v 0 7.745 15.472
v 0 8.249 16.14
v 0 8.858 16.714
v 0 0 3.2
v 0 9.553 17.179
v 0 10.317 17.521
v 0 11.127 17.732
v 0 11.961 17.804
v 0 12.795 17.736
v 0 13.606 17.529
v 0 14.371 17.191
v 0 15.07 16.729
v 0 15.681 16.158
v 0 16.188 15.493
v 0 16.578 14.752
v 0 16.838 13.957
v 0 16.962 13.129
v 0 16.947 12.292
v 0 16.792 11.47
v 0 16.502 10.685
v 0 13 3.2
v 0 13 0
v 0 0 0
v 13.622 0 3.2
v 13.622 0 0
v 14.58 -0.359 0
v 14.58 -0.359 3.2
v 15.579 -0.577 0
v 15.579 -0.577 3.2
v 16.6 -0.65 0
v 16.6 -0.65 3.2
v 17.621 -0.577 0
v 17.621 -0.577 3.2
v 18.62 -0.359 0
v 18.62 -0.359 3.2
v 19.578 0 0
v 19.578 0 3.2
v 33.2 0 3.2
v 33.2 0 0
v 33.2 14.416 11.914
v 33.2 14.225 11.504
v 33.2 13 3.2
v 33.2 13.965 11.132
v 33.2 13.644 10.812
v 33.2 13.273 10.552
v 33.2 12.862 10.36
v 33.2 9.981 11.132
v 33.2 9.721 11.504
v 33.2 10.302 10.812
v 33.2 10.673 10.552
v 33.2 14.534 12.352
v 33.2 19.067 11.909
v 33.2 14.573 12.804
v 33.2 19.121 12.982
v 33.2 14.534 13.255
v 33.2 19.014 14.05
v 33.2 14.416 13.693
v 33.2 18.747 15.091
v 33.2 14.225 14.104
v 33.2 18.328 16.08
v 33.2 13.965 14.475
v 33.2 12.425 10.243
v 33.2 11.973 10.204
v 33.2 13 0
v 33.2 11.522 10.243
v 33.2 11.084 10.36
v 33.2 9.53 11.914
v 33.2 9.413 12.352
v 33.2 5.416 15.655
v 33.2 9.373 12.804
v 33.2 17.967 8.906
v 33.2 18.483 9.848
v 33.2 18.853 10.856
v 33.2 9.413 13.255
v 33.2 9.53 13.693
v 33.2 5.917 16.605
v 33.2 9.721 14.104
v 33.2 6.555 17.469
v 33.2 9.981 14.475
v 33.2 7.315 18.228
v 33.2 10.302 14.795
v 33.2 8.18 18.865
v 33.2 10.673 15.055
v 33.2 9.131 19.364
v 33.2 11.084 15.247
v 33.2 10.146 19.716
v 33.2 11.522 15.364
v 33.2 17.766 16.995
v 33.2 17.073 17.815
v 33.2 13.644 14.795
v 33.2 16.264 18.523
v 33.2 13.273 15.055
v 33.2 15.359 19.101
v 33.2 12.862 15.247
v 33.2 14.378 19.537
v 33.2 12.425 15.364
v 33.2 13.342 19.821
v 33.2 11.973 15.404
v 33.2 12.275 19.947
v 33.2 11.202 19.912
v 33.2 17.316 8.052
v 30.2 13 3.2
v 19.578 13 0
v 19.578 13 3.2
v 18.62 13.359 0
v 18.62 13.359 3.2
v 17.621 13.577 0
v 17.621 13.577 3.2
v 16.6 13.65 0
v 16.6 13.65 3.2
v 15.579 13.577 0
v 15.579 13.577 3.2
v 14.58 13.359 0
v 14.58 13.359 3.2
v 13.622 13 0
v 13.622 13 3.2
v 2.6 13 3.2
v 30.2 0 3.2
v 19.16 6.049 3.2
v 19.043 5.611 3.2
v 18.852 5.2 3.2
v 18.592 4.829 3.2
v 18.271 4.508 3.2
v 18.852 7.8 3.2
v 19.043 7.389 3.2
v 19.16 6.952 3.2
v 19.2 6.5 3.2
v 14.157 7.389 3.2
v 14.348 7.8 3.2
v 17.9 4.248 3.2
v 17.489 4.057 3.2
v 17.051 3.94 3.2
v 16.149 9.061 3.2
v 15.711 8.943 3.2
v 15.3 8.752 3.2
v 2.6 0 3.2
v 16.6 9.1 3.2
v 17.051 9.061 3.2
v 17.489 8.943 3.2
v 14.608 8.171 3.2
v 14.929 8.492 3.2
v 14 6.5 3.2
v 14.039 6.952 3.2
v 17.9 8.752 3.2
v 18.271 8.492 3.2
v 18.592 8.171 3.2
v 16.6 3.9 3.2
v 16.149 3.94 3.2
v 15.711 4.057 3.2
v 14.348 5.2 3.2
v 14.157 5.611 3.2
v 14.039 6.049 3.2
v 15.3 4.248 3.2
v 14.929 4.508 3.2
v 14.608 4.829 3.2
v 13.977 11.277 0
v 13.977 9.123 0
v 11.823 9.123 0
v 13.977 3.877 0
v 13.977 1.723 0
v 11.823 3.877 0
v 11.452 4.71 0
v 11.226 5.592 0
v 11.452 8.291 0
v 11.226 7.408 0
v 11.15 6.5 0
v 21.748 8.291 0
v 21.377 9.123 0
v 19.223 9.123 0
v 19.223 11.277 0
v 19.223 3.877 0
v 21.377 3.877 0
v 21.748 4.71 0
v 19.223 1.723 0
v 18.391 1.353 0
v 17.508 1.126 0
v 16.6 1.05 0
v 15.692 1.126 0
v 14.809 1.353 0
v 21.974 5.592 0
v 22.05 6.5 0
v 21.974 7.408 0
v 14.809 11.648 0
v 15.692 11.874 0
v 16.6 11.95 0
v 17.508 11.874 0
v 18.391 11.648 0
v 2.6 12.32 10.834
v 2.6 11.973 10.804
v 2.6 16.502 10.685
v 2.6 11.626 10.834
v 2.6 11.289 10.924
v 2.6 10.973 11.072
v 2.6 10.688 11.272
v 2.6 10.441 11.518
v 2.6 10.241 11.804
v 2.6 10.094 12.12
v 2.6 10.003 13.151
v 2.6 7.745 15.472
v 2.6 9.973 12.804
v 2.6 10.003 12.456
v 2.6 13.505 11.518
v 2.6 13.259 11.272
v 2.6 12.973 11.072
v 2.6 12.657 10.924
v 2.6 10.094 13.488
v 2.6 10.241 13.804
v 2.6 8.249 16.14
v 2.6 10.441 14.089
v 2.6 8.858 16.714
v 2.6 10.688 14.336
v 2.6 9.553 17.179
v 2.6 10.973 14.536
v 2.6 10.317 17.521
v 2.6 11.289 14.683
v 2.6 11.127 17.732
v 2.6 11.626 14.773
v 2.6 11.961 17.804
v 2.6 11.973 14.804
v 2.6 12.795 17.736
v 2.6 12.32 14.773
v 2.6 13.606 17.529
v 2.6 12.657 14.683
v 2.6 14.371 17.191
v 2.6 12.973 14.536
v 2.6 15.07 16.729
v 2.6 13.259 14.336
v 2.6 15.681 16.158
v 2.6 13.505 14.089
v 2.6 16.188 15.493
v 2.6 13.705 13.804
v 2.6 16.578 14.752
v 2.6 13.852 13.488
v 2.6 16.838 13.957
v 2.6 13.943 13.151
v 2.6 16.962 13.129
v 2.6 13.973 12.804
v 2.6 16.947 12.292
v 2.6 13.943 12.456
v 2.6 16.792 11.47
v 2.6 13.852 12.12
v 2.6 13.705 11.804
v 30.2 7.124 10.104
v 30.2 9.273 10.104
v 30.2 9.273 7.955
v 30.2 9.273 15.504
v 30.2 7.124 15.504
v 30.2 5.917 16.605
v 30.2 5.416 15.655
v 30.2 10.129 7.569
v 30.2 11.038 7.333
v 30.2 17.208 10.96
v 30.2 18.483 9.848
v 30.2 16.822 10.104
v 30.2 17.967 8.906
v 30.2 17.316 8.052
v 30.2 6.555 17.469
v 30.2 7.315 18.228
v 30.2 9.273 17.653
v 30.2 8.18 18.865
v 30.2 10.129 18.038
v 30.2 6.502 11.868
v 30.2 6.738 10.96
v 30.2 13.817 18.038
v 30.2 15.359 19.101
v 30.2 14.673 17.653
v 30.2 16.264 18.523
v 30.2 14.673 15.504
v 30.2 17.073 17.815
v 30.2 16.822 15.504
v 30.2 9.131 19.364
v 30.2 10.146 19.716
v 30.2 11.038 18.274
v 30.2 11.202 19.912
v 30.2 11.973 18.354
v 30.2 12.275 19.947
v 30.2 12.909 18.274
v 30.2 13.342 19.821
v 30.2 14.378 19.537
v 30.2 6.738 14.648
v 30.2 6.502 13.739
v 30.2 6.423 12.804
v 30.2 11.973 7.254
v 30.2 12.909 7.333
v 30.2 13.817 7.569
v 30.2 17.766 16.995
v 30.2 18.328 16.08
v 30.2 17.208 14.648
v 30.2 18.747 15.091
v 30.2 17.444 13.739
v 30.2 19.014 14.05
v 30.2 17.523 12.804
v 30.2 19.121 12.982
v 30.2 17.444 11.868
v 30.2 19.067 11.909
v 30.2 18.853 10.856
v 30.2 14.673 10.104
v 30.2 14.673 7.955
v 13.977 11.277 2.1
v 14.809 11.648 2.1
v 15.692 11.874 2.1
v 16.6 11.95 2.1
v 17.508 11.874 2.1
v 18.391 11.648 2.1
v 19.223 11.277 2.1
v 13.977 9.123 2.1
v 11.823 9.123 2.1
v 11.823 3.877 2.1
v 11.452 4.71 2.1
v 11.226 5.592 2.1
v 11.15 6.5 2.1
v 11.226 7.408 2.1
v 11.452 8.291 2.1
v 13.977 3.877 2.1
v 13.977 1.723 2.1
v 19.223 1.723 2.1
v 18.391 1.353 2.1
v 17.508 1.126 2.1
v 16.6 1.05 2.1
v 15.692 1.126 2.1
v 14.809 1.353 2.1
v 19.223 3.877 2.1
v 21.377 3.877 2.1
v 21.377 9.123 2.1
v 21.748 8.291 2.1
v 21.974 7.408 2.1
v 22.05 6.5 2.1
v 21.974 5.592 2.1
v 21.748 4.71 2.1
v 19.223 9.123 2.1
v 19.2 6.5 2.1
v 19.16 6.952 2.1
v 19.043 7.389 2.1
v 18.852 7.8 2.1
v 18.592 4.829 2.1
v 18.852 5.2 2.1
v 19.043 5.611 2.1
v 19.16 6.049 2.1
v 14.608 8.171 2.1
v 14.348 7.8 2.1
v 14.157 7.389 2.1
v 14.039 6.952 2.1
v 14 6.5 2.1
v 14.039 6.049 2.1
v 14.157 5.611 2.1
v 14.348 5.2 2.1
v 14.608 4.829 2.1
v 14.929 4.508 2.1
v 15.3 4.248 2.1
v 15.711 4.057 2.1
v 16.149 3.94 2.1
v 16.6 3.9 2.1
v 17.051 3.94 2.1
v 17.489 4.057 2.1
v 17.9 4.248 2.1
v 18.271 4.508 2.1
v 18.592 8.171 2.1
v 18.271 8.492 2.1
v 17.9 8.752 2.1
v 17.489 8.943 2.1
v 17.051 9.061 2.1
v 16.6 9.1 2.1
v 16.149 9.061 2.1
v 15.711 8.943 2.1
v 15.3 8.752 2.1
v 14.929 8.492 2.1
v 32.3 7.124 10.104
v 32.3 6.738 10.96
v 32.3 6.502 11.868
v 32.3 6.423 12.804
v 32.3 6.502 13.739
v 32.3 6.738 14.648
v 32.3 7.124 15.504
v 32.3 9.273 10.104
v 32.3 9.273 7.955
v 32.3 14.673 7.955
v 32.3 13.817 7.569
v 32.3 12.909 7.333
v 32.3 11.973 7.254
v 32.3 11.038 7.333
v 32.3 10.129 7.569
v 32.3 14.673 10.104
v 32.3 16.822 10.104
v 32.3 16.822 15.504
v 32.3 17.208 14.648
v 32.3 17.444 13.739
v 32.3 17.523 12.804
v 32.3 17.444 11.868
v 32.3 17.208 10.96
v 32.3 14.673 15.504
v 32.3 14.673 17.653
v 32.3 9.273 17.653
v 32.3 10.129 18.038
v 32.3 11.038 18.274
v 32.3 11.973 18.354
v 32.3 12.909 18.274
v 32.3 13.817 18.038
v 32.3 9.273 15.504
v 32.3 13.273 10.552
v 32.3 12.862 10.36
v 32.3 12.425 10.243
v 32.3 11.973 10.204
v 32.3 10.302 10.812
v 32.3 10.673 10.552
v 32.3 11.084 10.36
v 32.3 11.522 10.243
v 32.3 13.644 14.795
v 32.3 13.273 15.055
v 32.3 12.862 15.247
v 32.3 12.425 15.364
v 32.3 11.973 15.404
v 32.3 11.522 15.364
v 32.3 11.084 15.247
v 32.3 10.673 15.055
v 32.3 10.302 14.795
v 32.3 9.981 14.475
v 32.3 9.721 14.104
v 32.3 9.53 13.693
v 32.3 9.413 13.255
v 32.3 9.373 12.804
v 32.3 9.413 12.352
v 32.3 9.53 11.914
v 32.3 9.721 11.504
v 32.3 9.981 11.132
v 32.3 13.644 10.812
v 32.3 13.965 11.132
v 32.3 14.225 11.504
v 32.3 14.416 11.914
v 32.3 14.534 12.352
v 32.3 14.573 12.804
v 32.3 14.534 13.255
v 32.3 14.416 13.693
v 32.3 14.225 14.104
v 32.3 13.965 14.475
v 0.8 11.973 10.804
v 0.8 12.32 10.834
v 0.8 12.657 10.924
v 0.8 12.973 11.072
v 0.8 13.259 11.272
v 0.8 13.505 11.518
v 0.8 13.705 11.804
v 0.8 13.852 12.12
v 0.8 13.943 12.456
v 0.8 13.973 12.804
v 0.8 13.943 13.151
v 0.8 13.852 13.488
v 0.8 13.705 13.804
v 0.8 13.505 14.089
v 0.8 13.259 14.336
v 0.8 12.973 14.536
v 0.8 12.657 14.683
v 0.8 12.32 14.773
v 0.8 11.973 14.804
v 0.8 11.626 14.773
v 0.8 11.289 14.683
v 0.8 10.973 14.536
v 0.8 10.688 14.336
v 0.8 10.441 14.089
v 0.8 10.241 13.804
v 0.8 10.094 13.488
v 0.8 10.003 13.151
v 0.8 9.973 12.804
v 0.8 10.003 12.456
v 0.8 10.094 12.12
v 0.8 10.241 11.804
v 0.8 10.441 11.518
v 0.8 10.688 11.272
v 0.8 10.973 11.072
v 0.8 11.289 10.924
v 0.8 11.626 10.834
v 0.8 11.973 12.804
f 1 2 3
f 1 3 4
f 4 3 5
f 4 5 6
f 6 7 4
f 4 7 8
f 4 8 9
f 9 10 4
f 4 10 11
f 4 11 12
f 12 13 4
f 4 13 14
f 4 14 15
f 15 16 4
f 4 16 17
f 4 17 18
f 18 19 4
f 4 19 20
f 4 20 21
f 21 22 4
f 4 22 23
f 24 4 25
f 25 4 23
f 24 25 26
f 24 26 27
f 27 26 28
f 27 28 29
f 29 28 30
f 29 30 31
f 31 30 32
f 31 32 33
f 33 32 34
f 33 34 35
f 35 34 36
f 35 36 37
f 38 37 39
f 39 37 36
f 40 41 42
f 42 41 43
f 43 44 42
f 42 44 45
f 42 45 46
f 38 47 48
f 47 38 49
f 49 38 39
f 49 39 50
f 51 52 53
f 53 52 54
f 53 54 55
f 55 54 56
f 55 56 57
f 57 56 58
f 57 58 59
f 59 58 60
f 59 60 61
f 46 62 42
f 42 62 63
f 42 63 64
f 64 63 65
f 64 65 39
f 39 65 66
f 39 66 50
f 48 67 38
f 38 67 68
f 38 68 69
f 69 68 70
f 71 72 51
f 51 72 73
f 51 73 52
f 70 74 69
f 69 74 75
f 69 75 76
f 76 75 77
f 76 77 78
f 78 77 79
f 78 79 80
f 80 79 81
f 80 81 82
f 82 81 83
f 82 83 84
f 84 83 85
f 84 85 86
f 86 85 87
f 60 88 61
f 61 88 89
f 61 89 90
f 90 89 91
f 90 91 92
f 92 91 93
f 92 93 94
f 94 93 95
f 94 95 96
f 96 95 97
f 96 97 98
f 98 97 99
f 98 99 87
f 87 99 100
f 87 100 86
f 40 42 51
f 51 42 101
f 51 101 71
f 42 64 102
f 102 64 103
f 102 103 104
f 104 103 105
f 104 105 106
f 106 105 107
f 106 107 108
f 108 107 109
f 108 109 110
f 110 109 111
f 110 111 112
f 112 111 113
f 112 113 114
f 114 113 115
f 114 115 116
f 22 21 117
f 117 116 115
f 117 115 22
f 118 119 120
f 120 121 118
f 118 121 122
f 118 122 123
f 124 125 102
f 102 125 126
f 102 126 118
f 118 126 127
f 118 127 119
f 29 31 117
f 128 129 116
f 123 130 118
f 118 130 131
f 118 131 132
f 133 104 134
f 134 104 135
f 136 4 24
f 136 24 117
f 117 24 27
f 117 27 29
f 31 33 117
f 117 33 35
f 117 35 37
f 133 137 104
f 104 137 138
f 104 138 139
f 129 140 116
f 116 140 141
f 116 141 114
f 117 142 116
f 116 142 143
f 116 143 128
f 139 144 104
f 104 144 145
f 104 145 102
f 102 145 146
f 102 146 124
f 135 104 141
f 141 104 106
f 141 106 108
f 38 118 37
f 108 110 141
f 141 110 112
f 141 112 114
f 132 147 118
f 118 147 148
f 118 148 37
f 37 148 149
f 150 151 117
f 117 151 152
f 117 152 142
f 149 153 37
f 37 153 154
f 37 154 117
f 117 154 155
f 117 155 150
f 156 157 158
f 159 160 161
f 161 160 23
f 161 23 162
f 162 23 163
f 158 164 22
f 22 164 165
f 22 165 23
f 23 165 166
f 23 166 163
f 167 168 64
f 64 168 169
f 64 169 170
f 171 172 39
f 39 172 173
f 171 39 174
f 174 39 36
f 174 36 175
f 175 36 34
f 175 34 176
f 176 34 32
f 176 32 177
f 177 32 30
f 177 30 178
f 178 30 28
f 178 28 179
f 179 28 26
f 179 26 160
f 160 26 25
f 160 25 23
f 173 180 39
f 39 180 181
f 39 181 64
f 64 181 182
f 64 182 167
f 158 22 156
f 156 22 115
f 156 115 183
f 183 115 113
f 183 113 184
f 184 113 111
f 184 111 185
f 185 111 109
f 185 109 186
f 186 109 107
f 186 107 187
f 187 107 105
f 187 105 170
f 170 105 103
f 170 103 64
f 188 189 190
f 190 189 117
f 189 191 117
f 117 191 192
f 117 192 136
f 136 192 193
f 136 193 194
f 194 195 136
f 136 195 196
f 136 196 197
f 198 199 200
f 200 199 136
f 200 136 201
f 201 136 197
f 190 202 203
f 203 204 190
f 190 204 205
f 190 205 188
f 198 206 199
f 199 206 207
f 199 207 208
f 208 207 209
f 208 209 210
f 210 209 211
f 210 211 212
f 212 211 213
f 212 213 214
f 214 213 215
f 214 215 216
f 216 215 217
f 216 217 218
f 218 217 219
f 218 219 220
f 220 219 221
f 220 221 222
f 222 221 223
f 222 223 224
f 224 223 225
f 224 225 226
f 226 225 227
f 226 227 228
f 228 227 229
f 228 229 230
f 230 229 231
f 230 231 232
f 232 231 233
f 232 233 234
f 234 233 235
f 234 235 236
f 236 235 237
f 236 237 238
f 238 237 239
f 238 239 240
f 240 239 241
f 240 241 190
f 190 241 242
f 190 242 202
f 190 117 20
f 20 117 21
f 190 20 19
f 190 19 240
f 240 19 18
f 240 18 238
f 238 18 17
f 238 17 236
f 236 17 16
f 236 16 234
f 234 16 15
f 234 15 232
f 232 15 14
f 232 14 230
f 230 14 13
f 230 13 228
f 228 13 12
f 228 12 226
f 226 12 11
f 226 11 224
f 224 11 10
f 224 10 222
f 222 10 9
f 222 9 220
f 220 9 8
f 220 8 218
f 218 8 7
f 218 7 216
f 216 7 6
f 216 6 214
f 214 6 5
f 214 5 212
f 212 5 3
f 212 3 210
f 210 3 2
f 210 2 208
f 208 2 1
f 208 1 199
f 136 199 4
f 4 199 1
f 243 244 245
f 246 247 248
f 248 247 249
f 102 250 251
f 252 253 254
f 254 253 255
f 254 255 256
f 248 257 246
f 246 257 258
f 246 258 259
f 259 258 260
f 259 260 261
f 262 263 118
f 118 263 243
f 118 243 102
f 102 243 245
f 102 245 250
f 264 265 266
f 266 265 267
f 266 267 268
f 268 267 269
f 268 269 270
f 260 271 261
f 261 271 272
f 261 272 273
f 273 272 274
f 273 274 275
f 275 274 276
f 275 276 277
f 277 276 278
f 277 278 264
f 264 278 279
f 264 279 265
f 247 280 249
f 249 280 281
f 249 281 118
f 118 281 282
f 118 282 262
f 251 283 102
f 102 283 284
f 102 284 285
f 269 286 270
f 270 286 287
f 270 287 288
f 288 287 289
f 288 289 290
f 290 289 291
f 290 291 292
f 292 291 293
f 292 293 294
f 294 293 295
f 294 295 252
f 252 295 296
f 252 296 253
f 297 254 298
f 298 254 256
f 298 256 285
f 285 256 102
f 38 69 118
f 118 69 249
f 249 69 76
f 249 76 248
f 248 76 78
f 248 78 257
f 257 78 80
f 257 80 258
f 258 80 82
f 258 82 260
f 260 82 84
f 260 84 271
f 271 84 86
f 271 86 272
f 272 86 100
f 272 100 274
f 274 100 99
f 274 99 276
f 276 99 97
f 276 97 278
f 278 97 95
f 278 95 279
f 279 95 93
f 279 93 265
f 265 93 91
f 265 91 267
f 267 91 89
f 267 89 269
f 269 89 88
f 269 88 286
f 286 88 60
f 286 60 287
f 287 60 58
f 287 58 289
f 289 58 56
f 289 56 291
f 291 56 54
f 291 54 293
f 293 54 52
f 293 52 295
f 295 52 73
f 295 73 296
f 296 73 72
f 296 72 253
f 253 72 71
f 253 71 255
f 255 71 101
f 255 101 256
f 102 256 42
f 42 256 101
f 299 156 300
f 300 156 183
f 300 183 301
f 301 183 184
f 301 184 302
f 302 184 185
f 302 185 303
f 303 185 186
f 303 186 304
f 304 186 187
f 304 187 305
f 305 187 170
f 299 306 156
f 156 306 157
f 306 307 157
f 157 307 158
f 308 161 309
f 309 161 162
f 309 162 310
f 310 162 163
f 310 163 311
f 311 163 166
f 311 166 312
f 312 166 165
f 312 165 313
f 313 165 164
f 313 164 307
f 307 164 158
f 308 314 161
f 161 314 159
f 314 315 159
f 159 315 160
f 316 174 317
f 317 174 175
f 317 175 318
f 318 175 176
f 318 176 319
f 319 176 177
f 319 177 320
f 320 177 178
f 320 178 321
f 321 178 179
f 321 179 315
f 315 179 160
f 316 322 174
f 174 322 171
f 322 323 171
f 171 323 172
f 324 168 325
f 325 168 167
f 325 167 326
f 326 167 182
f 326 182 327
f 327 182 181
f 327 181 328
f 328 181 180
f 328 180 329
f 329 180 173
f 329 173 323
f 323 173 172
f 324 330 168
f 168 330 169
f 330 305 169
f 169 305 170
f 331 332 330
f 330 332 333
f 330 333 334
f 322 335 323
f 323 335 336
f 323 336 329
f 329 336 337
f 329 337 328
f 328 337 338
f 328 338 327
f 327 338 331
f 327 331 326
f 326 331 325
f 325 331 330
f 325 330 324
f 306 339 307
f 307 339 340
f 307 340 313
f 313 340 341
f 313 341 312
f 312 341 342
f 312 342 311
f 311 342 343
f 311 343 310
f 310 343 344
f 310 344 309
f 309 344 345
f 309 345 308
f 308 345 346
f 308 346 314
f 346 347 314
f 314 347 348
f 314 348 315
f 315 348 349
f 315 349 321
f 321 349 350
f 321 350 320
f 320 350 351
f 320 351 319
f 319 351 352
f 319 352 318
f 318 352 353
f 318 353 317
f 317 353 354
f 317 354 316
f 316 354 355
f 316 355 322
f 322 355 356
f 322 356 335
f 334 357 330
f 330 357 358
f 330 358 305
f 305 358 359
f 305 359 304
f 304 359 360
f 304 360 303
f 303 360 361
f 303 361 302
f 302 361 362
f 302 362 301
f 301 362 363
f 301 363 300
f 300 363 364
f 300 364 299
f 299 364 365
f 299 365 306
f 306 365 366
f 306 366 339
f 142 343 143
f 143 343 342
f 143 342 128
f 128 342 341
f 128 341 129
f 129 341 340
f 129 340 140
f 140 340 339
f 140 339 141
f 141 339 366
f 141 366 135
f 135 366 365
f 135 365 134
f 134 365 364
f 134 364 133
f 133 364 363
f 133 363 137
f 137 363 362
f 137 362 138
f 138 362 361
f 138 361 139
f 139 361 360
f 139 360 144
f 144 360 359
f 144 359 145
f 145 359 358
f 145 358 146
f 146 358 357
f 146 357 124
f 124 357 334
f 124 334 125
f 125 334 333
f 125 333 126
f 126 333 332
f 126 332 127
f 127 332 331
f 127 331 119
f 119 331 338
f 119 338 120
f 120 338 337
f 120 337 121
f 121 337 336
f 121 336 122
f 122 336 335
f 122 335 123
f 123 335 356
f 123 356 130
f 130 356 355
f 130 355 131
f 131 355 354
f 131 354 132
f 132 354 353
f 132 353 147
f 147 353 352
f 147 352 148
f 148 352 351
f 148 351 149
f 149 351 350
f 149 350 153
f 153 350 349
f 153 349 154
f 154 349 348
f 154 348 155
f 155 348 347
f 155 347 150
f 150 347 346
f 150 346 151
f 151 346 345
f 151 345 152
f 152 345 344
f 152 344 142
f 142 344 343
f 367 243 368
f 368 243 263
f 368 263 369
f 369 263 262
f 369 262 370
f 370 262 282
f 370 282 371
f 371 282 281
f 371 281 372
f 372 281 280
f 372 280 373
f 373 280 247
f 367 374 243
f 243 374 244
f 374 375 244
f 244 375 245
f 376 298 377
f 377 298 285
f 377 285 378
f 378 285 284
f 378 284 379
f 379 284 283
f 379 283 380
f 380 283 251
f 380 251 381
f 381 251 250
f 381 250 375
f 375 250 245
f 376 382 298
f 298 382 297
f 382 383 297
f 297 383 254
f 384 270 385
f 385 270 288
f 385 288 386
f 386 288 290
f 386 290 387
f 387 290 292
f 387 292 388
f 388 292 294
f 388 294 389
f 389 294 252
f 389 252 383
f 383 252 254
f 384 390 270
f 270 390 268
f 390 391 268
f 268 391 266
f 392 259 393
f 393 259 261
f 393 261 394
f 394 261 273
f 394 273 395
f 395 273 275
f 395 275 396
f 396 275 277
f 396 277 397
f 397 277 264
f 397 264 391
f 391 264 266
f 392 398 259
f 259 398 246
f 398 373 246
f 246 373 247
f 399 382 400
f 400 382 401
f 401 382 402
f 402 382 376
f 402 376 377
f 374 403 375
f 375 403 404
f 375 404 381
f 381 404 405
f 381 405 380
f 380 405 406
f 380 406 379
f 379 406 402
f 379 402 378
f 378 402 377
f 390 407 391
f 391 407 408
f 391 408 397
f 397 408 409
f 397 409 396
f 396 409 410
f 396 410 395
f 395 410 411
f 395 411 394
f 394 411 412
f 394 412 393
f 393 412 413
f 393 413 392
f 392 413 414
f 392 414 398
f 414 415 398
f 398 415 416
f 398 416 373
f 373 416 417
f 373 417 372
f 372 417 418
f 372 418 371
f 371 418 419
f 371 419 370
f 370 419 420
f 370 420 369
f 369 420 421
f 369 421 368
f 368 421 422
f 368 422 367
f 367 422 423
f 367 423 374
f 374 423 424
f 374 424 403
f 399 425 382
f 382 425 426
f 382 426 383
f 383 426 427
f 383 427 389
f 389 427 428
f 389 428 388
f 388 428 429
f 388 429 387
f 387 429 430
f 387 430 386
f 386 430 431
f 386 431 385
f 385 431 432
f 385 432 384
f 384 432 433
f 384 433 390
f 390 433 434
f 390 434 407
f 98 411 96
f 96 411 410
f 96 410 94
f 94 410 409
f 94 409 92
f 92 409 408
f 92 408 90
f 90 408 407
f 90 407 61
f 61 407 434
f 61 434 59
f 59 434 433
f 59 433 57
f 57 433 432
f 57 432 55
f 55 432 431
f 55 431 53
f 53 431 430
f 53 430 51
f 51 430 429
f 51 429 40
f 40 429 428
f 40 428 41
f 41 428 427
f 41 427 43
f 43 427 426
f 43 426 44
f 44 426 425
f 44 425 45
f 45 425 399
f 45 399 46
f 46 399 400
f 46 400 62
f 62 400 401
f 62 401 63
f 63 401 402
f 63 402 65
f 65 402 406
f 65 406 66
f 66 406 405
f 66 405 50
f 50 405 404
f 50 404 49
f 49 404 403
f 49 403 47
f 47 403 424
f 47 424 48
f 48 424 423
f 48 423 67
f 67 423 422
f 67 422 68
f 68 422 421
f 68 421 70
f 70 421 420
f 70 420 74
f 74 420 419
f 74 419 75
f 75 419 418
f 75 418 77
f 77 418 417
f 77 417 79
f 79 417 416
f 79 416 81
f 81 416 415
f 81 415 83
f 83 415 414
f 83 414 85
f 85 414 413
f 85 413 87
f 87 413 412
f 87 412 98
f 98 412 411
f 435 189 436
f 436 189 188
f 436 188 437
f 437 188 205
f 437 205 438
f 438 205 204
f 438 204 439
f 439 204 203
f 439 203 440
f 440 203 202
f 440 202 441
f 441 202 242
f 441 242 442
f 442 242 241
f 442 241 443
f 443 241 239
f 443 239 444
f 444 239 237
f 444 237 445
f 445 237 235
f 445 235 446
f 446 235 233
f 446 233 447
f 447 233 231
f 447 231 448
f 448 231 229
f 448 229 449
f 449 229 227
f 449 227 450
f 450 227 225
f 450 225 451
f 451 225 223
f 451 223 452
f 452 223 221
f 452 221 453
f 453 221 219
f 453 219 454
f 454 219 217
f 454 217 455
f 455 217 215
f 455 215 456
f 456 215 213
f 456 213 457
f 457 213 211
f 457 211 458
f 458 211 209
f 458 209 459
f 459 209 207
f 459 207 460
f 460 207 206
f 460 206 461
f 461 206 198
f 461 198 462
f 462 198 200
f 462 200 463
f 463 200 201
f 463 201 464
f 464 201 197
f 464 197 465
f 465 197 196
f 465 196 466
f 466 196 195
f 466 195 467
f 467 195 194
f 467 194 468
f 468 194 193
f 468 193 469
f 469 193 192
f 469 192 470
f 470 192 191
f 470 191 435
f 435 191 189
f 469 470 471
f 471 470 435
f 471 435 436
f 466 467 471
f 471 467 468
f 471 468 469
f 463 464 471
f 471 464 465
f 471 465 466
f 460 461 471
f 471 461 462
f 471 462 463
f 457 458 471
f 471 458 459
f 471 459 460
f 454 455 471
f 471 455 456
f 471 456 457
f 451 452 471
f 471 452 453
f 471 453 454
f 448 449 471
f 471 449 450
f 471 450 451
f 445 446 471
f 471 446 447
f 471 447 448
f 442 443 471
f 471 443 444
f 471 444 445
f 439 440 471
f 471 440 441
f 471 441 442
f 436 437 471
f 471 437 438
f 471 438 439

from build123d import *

# Parameters (mm, degrees)
EXTRUDE_1_DEPTH     = 3.2
EXTRUDE_2_DEPTH     = 2.6
EXTRUDE_3_DEPTH     = 3
CUT_EXTRUDE_1_DEPTH = 2.1
SKETCH_5_R          = 2.6
CUT_EXTRUDE_2_DEPTH = 1.1
CUT_EXTRUDE_3_DEPTH = 2.1
SKETCH_7_R          = 2.6
CUT_EXTRUDE_4_DEPTH = 0.9
SKETCH_8_R          = 2
CUT_EXTRUDE_5_DEPTH = 1.8


with BuildPart() as part:
    # ｽｹｯﾁ1 → ﾎﾞｽ - 押し出し1 (new body)
    with BuildSketch(Plane.XY):
        with BuildLine():
            Line((0, 0), (13.621587752, 0))
            ThreePointArc((13.621587752, 0), (16.6, -0.649879964), (19.578412248, 0))
            Line((19.578412248, 0), (33.2, 0))
            Line((33.2, 0), (33.2, 13.000240072))
            Line((33.2, 13.000240072), (19.578412248, 13.000240072))
            ThreePointArc((19.578412248, 13.000240072), (16.6, 13.650120036), (13.621587752, 13.000240072))
            Line((13.621587752, 13.000240072), (0, 13.000240072))
            Line((0, 13.000240072), (0, 0))
        make_face()
    extrude(amount=EXTRUDE_1_DEPTH)

    # ｽｹｯﾁ2 → ﾎﾞｽ - 押し出し2 (add)
    with BuildSketch(Plane.ZY):
        with BuildLine():
            Line((3.199725342, 0), (15.472038891, 7.74466563))
            ThreePointArc((15.472038891, 7.74466563), (17.190896421, 14.371374104), (10.684882054, 16.501987504))
            Line((10.684882054, 16.501987504), (3.199725342, 13.000240072))
            Line((3.199725342, 13.000240072), (3.199725342, 0))
        make_face()
    extrude(amount=-EXTRUDE_2_DEPTH)

    # ｽｹｯﾁ3 → ﾎﾞｽ - 押し出し3 (add)
    with BuildSketch(Plane(origin=(33.2, 0, 0), x_dir=(0, 0, -1), z_dir=(1, 0, 0))):
        with BuildLine():
            Line((-3.199725342, 13.000240072), (-8.051923005, 17.315733546))
            ThreePointArc((-8.051923005, 17.315733546), (-18.828777882, 15.822754082), (-15.654913036, 5.416209475))
            Line((-15.654913036, 5.416209475), (-3.199725342, 0))
            Line((-3.199725342, 0), (-3.199725342, 13.000240072))
        make_face()
    extrude(amount=-EXTRUDE_3_DEPTH)

    # ｽｹｯﾁ4 → ｶｯﾄ - 押し出し1 (cut)
    with BuildSketch(Plane(origin=(0, 0, 0), x_dir=(-1, 0, 0), z_dir=(0, 0, -1))):
        with BuildLine():
            Line((-19.223176421, 11.277459888), (-19.223176421, 9.123296456))
            Line((-19.223176421, 9.123296456), (-21.377339853, 9.123296456))
            ThreePointArc((-21.377339853, 9.123296456), (-22.05014042, 6.500120036), (-21.377339853, 3.876943615))
            Line((-21.377339853, 3.876943615), (-19.223176421, 3.876943615))
            Line((-19.223176421, 3.876943615), (-19.223176421, 1.722780183))
            ThreePointArc((-19.223176421, 1.722780183), (-16.6, 1.049979616), (-13.976823579, 1.722780183))
            Line((-13.976823579, 1.722780183), (-13.976823579, 3.876943615))
            Line((-13.976823579, 3.876943615), (-11.822660147, 3.876943615))
            ThreePointArc((-11.822660147, 3.876943615), (-11.14985958, 6.500120036), (-11.822660147, 9.123296456))
            Line((-11.822660147, 9.123296456), (-13.976823579, 9.123296456))
            Line((-13.976823579, 9.123296456), (-13.976823579, 11.277459888))
            ThreePointArc((-13.976823579, 11.277459888), (-16.6, 11.950260456), (-19.223176421, 11.277459888))
        make_face()
    extrude(amount=-CUT_EXTRUDE_1_DEPTH, mode=Mode.SUBTRACT)

    # ｽｹｯﾁ5 → ｶｯﾄ - 押し出し2 (cut)
    with BuildSketch(Plane(origin=(0, 0, 2.1), x_dir=(-1, 0, 0), z_dir=(0, 0, -1))):
        with Locations((-16.6, 6.500120036)):
            Circle(SKETCH_5_R)
    extrude(amount=-CUT_EXTRUDE_2_DEPTH, mode=Mode.SUBTRACT)

    # ｽｹｯﾁ6 → ｶｯﾄ - 押し出し3 (cut)
    with BuildSketch(Plane.ZY.offset(-30.2)):
        with BuildLine():
            Line((15.503618238, 7.124116138), (15.503618238, 9.2730851))
            Line((15.503618238, 9.2730851), (17.6525872, 9.2730851))
            ThreePointArc((17.6525872, 9.2730851), (18.353618238, 11.9730851), (17.6525872, 14.6730851))
            Line((17.6525872, 14.6730851), (15.503618238, 14.6730851))
            Line((15.503618238, 14.6730851), (15.503618238, 16.822054063))
            ThreePointArc((15.503618238, 16.822054063), (12.803618238, 17.5230851), (10.103618238, 16.822054063))
            Line((10.103618238, 16.822054063), (10.103618238, 14.6730851))
            Line((10.103618238, 14.6730851), (7.954649275, 14.6730851))
            ThreePointArc((7.954649275, 14.6730851), (7.253618238, 11.9730851), (7.954649275, 9.2730851))
            Line((7.954649275, 9.2730851), (10.103618238, 9.2730851))
            Line((10.103618238, 9.2730851), (10.103618238, 7.124116138))
            ThreePointArc((10.103618238, 7.124116138), (12.803618238, 6.4230851), (15.503618238, 7.124116138))
        make_face()
    extrude(amount=-CUT_EXTRUDE_3_DEPTH, mode=Mode.SUBTRACT)

    # ｽｹｯﾁ7 → ｶｯﾄ - 押し出し4 (cut)
    with BuildSketch(Plane.ZY.offset(-32.3)):
        with Locations((12.803618238, 11.9730851)):
            Circle(SKETCH_7_R)
    extrude(amount=-CUT_EXTRUDE_4_DEPTH, mode=Mode.SUBTRACT)

    # ｽｹｯﾁ8 → ｶｯﾄ - 押し出し5 (cut)
    with BuildSketch(Plane(origin=(2.6, 0, 0), x_dir=(0, 0, -1), z_dir=(1, 0, 0))):
        with Locations((-12.803618238, 11.9730851)):
            Circle(SKETCH_8_R)
    extrude(amount=-CUT_EXTRUDE_5_DEPTH, mode=Mode.SUBTRACT)


solid = part.part
